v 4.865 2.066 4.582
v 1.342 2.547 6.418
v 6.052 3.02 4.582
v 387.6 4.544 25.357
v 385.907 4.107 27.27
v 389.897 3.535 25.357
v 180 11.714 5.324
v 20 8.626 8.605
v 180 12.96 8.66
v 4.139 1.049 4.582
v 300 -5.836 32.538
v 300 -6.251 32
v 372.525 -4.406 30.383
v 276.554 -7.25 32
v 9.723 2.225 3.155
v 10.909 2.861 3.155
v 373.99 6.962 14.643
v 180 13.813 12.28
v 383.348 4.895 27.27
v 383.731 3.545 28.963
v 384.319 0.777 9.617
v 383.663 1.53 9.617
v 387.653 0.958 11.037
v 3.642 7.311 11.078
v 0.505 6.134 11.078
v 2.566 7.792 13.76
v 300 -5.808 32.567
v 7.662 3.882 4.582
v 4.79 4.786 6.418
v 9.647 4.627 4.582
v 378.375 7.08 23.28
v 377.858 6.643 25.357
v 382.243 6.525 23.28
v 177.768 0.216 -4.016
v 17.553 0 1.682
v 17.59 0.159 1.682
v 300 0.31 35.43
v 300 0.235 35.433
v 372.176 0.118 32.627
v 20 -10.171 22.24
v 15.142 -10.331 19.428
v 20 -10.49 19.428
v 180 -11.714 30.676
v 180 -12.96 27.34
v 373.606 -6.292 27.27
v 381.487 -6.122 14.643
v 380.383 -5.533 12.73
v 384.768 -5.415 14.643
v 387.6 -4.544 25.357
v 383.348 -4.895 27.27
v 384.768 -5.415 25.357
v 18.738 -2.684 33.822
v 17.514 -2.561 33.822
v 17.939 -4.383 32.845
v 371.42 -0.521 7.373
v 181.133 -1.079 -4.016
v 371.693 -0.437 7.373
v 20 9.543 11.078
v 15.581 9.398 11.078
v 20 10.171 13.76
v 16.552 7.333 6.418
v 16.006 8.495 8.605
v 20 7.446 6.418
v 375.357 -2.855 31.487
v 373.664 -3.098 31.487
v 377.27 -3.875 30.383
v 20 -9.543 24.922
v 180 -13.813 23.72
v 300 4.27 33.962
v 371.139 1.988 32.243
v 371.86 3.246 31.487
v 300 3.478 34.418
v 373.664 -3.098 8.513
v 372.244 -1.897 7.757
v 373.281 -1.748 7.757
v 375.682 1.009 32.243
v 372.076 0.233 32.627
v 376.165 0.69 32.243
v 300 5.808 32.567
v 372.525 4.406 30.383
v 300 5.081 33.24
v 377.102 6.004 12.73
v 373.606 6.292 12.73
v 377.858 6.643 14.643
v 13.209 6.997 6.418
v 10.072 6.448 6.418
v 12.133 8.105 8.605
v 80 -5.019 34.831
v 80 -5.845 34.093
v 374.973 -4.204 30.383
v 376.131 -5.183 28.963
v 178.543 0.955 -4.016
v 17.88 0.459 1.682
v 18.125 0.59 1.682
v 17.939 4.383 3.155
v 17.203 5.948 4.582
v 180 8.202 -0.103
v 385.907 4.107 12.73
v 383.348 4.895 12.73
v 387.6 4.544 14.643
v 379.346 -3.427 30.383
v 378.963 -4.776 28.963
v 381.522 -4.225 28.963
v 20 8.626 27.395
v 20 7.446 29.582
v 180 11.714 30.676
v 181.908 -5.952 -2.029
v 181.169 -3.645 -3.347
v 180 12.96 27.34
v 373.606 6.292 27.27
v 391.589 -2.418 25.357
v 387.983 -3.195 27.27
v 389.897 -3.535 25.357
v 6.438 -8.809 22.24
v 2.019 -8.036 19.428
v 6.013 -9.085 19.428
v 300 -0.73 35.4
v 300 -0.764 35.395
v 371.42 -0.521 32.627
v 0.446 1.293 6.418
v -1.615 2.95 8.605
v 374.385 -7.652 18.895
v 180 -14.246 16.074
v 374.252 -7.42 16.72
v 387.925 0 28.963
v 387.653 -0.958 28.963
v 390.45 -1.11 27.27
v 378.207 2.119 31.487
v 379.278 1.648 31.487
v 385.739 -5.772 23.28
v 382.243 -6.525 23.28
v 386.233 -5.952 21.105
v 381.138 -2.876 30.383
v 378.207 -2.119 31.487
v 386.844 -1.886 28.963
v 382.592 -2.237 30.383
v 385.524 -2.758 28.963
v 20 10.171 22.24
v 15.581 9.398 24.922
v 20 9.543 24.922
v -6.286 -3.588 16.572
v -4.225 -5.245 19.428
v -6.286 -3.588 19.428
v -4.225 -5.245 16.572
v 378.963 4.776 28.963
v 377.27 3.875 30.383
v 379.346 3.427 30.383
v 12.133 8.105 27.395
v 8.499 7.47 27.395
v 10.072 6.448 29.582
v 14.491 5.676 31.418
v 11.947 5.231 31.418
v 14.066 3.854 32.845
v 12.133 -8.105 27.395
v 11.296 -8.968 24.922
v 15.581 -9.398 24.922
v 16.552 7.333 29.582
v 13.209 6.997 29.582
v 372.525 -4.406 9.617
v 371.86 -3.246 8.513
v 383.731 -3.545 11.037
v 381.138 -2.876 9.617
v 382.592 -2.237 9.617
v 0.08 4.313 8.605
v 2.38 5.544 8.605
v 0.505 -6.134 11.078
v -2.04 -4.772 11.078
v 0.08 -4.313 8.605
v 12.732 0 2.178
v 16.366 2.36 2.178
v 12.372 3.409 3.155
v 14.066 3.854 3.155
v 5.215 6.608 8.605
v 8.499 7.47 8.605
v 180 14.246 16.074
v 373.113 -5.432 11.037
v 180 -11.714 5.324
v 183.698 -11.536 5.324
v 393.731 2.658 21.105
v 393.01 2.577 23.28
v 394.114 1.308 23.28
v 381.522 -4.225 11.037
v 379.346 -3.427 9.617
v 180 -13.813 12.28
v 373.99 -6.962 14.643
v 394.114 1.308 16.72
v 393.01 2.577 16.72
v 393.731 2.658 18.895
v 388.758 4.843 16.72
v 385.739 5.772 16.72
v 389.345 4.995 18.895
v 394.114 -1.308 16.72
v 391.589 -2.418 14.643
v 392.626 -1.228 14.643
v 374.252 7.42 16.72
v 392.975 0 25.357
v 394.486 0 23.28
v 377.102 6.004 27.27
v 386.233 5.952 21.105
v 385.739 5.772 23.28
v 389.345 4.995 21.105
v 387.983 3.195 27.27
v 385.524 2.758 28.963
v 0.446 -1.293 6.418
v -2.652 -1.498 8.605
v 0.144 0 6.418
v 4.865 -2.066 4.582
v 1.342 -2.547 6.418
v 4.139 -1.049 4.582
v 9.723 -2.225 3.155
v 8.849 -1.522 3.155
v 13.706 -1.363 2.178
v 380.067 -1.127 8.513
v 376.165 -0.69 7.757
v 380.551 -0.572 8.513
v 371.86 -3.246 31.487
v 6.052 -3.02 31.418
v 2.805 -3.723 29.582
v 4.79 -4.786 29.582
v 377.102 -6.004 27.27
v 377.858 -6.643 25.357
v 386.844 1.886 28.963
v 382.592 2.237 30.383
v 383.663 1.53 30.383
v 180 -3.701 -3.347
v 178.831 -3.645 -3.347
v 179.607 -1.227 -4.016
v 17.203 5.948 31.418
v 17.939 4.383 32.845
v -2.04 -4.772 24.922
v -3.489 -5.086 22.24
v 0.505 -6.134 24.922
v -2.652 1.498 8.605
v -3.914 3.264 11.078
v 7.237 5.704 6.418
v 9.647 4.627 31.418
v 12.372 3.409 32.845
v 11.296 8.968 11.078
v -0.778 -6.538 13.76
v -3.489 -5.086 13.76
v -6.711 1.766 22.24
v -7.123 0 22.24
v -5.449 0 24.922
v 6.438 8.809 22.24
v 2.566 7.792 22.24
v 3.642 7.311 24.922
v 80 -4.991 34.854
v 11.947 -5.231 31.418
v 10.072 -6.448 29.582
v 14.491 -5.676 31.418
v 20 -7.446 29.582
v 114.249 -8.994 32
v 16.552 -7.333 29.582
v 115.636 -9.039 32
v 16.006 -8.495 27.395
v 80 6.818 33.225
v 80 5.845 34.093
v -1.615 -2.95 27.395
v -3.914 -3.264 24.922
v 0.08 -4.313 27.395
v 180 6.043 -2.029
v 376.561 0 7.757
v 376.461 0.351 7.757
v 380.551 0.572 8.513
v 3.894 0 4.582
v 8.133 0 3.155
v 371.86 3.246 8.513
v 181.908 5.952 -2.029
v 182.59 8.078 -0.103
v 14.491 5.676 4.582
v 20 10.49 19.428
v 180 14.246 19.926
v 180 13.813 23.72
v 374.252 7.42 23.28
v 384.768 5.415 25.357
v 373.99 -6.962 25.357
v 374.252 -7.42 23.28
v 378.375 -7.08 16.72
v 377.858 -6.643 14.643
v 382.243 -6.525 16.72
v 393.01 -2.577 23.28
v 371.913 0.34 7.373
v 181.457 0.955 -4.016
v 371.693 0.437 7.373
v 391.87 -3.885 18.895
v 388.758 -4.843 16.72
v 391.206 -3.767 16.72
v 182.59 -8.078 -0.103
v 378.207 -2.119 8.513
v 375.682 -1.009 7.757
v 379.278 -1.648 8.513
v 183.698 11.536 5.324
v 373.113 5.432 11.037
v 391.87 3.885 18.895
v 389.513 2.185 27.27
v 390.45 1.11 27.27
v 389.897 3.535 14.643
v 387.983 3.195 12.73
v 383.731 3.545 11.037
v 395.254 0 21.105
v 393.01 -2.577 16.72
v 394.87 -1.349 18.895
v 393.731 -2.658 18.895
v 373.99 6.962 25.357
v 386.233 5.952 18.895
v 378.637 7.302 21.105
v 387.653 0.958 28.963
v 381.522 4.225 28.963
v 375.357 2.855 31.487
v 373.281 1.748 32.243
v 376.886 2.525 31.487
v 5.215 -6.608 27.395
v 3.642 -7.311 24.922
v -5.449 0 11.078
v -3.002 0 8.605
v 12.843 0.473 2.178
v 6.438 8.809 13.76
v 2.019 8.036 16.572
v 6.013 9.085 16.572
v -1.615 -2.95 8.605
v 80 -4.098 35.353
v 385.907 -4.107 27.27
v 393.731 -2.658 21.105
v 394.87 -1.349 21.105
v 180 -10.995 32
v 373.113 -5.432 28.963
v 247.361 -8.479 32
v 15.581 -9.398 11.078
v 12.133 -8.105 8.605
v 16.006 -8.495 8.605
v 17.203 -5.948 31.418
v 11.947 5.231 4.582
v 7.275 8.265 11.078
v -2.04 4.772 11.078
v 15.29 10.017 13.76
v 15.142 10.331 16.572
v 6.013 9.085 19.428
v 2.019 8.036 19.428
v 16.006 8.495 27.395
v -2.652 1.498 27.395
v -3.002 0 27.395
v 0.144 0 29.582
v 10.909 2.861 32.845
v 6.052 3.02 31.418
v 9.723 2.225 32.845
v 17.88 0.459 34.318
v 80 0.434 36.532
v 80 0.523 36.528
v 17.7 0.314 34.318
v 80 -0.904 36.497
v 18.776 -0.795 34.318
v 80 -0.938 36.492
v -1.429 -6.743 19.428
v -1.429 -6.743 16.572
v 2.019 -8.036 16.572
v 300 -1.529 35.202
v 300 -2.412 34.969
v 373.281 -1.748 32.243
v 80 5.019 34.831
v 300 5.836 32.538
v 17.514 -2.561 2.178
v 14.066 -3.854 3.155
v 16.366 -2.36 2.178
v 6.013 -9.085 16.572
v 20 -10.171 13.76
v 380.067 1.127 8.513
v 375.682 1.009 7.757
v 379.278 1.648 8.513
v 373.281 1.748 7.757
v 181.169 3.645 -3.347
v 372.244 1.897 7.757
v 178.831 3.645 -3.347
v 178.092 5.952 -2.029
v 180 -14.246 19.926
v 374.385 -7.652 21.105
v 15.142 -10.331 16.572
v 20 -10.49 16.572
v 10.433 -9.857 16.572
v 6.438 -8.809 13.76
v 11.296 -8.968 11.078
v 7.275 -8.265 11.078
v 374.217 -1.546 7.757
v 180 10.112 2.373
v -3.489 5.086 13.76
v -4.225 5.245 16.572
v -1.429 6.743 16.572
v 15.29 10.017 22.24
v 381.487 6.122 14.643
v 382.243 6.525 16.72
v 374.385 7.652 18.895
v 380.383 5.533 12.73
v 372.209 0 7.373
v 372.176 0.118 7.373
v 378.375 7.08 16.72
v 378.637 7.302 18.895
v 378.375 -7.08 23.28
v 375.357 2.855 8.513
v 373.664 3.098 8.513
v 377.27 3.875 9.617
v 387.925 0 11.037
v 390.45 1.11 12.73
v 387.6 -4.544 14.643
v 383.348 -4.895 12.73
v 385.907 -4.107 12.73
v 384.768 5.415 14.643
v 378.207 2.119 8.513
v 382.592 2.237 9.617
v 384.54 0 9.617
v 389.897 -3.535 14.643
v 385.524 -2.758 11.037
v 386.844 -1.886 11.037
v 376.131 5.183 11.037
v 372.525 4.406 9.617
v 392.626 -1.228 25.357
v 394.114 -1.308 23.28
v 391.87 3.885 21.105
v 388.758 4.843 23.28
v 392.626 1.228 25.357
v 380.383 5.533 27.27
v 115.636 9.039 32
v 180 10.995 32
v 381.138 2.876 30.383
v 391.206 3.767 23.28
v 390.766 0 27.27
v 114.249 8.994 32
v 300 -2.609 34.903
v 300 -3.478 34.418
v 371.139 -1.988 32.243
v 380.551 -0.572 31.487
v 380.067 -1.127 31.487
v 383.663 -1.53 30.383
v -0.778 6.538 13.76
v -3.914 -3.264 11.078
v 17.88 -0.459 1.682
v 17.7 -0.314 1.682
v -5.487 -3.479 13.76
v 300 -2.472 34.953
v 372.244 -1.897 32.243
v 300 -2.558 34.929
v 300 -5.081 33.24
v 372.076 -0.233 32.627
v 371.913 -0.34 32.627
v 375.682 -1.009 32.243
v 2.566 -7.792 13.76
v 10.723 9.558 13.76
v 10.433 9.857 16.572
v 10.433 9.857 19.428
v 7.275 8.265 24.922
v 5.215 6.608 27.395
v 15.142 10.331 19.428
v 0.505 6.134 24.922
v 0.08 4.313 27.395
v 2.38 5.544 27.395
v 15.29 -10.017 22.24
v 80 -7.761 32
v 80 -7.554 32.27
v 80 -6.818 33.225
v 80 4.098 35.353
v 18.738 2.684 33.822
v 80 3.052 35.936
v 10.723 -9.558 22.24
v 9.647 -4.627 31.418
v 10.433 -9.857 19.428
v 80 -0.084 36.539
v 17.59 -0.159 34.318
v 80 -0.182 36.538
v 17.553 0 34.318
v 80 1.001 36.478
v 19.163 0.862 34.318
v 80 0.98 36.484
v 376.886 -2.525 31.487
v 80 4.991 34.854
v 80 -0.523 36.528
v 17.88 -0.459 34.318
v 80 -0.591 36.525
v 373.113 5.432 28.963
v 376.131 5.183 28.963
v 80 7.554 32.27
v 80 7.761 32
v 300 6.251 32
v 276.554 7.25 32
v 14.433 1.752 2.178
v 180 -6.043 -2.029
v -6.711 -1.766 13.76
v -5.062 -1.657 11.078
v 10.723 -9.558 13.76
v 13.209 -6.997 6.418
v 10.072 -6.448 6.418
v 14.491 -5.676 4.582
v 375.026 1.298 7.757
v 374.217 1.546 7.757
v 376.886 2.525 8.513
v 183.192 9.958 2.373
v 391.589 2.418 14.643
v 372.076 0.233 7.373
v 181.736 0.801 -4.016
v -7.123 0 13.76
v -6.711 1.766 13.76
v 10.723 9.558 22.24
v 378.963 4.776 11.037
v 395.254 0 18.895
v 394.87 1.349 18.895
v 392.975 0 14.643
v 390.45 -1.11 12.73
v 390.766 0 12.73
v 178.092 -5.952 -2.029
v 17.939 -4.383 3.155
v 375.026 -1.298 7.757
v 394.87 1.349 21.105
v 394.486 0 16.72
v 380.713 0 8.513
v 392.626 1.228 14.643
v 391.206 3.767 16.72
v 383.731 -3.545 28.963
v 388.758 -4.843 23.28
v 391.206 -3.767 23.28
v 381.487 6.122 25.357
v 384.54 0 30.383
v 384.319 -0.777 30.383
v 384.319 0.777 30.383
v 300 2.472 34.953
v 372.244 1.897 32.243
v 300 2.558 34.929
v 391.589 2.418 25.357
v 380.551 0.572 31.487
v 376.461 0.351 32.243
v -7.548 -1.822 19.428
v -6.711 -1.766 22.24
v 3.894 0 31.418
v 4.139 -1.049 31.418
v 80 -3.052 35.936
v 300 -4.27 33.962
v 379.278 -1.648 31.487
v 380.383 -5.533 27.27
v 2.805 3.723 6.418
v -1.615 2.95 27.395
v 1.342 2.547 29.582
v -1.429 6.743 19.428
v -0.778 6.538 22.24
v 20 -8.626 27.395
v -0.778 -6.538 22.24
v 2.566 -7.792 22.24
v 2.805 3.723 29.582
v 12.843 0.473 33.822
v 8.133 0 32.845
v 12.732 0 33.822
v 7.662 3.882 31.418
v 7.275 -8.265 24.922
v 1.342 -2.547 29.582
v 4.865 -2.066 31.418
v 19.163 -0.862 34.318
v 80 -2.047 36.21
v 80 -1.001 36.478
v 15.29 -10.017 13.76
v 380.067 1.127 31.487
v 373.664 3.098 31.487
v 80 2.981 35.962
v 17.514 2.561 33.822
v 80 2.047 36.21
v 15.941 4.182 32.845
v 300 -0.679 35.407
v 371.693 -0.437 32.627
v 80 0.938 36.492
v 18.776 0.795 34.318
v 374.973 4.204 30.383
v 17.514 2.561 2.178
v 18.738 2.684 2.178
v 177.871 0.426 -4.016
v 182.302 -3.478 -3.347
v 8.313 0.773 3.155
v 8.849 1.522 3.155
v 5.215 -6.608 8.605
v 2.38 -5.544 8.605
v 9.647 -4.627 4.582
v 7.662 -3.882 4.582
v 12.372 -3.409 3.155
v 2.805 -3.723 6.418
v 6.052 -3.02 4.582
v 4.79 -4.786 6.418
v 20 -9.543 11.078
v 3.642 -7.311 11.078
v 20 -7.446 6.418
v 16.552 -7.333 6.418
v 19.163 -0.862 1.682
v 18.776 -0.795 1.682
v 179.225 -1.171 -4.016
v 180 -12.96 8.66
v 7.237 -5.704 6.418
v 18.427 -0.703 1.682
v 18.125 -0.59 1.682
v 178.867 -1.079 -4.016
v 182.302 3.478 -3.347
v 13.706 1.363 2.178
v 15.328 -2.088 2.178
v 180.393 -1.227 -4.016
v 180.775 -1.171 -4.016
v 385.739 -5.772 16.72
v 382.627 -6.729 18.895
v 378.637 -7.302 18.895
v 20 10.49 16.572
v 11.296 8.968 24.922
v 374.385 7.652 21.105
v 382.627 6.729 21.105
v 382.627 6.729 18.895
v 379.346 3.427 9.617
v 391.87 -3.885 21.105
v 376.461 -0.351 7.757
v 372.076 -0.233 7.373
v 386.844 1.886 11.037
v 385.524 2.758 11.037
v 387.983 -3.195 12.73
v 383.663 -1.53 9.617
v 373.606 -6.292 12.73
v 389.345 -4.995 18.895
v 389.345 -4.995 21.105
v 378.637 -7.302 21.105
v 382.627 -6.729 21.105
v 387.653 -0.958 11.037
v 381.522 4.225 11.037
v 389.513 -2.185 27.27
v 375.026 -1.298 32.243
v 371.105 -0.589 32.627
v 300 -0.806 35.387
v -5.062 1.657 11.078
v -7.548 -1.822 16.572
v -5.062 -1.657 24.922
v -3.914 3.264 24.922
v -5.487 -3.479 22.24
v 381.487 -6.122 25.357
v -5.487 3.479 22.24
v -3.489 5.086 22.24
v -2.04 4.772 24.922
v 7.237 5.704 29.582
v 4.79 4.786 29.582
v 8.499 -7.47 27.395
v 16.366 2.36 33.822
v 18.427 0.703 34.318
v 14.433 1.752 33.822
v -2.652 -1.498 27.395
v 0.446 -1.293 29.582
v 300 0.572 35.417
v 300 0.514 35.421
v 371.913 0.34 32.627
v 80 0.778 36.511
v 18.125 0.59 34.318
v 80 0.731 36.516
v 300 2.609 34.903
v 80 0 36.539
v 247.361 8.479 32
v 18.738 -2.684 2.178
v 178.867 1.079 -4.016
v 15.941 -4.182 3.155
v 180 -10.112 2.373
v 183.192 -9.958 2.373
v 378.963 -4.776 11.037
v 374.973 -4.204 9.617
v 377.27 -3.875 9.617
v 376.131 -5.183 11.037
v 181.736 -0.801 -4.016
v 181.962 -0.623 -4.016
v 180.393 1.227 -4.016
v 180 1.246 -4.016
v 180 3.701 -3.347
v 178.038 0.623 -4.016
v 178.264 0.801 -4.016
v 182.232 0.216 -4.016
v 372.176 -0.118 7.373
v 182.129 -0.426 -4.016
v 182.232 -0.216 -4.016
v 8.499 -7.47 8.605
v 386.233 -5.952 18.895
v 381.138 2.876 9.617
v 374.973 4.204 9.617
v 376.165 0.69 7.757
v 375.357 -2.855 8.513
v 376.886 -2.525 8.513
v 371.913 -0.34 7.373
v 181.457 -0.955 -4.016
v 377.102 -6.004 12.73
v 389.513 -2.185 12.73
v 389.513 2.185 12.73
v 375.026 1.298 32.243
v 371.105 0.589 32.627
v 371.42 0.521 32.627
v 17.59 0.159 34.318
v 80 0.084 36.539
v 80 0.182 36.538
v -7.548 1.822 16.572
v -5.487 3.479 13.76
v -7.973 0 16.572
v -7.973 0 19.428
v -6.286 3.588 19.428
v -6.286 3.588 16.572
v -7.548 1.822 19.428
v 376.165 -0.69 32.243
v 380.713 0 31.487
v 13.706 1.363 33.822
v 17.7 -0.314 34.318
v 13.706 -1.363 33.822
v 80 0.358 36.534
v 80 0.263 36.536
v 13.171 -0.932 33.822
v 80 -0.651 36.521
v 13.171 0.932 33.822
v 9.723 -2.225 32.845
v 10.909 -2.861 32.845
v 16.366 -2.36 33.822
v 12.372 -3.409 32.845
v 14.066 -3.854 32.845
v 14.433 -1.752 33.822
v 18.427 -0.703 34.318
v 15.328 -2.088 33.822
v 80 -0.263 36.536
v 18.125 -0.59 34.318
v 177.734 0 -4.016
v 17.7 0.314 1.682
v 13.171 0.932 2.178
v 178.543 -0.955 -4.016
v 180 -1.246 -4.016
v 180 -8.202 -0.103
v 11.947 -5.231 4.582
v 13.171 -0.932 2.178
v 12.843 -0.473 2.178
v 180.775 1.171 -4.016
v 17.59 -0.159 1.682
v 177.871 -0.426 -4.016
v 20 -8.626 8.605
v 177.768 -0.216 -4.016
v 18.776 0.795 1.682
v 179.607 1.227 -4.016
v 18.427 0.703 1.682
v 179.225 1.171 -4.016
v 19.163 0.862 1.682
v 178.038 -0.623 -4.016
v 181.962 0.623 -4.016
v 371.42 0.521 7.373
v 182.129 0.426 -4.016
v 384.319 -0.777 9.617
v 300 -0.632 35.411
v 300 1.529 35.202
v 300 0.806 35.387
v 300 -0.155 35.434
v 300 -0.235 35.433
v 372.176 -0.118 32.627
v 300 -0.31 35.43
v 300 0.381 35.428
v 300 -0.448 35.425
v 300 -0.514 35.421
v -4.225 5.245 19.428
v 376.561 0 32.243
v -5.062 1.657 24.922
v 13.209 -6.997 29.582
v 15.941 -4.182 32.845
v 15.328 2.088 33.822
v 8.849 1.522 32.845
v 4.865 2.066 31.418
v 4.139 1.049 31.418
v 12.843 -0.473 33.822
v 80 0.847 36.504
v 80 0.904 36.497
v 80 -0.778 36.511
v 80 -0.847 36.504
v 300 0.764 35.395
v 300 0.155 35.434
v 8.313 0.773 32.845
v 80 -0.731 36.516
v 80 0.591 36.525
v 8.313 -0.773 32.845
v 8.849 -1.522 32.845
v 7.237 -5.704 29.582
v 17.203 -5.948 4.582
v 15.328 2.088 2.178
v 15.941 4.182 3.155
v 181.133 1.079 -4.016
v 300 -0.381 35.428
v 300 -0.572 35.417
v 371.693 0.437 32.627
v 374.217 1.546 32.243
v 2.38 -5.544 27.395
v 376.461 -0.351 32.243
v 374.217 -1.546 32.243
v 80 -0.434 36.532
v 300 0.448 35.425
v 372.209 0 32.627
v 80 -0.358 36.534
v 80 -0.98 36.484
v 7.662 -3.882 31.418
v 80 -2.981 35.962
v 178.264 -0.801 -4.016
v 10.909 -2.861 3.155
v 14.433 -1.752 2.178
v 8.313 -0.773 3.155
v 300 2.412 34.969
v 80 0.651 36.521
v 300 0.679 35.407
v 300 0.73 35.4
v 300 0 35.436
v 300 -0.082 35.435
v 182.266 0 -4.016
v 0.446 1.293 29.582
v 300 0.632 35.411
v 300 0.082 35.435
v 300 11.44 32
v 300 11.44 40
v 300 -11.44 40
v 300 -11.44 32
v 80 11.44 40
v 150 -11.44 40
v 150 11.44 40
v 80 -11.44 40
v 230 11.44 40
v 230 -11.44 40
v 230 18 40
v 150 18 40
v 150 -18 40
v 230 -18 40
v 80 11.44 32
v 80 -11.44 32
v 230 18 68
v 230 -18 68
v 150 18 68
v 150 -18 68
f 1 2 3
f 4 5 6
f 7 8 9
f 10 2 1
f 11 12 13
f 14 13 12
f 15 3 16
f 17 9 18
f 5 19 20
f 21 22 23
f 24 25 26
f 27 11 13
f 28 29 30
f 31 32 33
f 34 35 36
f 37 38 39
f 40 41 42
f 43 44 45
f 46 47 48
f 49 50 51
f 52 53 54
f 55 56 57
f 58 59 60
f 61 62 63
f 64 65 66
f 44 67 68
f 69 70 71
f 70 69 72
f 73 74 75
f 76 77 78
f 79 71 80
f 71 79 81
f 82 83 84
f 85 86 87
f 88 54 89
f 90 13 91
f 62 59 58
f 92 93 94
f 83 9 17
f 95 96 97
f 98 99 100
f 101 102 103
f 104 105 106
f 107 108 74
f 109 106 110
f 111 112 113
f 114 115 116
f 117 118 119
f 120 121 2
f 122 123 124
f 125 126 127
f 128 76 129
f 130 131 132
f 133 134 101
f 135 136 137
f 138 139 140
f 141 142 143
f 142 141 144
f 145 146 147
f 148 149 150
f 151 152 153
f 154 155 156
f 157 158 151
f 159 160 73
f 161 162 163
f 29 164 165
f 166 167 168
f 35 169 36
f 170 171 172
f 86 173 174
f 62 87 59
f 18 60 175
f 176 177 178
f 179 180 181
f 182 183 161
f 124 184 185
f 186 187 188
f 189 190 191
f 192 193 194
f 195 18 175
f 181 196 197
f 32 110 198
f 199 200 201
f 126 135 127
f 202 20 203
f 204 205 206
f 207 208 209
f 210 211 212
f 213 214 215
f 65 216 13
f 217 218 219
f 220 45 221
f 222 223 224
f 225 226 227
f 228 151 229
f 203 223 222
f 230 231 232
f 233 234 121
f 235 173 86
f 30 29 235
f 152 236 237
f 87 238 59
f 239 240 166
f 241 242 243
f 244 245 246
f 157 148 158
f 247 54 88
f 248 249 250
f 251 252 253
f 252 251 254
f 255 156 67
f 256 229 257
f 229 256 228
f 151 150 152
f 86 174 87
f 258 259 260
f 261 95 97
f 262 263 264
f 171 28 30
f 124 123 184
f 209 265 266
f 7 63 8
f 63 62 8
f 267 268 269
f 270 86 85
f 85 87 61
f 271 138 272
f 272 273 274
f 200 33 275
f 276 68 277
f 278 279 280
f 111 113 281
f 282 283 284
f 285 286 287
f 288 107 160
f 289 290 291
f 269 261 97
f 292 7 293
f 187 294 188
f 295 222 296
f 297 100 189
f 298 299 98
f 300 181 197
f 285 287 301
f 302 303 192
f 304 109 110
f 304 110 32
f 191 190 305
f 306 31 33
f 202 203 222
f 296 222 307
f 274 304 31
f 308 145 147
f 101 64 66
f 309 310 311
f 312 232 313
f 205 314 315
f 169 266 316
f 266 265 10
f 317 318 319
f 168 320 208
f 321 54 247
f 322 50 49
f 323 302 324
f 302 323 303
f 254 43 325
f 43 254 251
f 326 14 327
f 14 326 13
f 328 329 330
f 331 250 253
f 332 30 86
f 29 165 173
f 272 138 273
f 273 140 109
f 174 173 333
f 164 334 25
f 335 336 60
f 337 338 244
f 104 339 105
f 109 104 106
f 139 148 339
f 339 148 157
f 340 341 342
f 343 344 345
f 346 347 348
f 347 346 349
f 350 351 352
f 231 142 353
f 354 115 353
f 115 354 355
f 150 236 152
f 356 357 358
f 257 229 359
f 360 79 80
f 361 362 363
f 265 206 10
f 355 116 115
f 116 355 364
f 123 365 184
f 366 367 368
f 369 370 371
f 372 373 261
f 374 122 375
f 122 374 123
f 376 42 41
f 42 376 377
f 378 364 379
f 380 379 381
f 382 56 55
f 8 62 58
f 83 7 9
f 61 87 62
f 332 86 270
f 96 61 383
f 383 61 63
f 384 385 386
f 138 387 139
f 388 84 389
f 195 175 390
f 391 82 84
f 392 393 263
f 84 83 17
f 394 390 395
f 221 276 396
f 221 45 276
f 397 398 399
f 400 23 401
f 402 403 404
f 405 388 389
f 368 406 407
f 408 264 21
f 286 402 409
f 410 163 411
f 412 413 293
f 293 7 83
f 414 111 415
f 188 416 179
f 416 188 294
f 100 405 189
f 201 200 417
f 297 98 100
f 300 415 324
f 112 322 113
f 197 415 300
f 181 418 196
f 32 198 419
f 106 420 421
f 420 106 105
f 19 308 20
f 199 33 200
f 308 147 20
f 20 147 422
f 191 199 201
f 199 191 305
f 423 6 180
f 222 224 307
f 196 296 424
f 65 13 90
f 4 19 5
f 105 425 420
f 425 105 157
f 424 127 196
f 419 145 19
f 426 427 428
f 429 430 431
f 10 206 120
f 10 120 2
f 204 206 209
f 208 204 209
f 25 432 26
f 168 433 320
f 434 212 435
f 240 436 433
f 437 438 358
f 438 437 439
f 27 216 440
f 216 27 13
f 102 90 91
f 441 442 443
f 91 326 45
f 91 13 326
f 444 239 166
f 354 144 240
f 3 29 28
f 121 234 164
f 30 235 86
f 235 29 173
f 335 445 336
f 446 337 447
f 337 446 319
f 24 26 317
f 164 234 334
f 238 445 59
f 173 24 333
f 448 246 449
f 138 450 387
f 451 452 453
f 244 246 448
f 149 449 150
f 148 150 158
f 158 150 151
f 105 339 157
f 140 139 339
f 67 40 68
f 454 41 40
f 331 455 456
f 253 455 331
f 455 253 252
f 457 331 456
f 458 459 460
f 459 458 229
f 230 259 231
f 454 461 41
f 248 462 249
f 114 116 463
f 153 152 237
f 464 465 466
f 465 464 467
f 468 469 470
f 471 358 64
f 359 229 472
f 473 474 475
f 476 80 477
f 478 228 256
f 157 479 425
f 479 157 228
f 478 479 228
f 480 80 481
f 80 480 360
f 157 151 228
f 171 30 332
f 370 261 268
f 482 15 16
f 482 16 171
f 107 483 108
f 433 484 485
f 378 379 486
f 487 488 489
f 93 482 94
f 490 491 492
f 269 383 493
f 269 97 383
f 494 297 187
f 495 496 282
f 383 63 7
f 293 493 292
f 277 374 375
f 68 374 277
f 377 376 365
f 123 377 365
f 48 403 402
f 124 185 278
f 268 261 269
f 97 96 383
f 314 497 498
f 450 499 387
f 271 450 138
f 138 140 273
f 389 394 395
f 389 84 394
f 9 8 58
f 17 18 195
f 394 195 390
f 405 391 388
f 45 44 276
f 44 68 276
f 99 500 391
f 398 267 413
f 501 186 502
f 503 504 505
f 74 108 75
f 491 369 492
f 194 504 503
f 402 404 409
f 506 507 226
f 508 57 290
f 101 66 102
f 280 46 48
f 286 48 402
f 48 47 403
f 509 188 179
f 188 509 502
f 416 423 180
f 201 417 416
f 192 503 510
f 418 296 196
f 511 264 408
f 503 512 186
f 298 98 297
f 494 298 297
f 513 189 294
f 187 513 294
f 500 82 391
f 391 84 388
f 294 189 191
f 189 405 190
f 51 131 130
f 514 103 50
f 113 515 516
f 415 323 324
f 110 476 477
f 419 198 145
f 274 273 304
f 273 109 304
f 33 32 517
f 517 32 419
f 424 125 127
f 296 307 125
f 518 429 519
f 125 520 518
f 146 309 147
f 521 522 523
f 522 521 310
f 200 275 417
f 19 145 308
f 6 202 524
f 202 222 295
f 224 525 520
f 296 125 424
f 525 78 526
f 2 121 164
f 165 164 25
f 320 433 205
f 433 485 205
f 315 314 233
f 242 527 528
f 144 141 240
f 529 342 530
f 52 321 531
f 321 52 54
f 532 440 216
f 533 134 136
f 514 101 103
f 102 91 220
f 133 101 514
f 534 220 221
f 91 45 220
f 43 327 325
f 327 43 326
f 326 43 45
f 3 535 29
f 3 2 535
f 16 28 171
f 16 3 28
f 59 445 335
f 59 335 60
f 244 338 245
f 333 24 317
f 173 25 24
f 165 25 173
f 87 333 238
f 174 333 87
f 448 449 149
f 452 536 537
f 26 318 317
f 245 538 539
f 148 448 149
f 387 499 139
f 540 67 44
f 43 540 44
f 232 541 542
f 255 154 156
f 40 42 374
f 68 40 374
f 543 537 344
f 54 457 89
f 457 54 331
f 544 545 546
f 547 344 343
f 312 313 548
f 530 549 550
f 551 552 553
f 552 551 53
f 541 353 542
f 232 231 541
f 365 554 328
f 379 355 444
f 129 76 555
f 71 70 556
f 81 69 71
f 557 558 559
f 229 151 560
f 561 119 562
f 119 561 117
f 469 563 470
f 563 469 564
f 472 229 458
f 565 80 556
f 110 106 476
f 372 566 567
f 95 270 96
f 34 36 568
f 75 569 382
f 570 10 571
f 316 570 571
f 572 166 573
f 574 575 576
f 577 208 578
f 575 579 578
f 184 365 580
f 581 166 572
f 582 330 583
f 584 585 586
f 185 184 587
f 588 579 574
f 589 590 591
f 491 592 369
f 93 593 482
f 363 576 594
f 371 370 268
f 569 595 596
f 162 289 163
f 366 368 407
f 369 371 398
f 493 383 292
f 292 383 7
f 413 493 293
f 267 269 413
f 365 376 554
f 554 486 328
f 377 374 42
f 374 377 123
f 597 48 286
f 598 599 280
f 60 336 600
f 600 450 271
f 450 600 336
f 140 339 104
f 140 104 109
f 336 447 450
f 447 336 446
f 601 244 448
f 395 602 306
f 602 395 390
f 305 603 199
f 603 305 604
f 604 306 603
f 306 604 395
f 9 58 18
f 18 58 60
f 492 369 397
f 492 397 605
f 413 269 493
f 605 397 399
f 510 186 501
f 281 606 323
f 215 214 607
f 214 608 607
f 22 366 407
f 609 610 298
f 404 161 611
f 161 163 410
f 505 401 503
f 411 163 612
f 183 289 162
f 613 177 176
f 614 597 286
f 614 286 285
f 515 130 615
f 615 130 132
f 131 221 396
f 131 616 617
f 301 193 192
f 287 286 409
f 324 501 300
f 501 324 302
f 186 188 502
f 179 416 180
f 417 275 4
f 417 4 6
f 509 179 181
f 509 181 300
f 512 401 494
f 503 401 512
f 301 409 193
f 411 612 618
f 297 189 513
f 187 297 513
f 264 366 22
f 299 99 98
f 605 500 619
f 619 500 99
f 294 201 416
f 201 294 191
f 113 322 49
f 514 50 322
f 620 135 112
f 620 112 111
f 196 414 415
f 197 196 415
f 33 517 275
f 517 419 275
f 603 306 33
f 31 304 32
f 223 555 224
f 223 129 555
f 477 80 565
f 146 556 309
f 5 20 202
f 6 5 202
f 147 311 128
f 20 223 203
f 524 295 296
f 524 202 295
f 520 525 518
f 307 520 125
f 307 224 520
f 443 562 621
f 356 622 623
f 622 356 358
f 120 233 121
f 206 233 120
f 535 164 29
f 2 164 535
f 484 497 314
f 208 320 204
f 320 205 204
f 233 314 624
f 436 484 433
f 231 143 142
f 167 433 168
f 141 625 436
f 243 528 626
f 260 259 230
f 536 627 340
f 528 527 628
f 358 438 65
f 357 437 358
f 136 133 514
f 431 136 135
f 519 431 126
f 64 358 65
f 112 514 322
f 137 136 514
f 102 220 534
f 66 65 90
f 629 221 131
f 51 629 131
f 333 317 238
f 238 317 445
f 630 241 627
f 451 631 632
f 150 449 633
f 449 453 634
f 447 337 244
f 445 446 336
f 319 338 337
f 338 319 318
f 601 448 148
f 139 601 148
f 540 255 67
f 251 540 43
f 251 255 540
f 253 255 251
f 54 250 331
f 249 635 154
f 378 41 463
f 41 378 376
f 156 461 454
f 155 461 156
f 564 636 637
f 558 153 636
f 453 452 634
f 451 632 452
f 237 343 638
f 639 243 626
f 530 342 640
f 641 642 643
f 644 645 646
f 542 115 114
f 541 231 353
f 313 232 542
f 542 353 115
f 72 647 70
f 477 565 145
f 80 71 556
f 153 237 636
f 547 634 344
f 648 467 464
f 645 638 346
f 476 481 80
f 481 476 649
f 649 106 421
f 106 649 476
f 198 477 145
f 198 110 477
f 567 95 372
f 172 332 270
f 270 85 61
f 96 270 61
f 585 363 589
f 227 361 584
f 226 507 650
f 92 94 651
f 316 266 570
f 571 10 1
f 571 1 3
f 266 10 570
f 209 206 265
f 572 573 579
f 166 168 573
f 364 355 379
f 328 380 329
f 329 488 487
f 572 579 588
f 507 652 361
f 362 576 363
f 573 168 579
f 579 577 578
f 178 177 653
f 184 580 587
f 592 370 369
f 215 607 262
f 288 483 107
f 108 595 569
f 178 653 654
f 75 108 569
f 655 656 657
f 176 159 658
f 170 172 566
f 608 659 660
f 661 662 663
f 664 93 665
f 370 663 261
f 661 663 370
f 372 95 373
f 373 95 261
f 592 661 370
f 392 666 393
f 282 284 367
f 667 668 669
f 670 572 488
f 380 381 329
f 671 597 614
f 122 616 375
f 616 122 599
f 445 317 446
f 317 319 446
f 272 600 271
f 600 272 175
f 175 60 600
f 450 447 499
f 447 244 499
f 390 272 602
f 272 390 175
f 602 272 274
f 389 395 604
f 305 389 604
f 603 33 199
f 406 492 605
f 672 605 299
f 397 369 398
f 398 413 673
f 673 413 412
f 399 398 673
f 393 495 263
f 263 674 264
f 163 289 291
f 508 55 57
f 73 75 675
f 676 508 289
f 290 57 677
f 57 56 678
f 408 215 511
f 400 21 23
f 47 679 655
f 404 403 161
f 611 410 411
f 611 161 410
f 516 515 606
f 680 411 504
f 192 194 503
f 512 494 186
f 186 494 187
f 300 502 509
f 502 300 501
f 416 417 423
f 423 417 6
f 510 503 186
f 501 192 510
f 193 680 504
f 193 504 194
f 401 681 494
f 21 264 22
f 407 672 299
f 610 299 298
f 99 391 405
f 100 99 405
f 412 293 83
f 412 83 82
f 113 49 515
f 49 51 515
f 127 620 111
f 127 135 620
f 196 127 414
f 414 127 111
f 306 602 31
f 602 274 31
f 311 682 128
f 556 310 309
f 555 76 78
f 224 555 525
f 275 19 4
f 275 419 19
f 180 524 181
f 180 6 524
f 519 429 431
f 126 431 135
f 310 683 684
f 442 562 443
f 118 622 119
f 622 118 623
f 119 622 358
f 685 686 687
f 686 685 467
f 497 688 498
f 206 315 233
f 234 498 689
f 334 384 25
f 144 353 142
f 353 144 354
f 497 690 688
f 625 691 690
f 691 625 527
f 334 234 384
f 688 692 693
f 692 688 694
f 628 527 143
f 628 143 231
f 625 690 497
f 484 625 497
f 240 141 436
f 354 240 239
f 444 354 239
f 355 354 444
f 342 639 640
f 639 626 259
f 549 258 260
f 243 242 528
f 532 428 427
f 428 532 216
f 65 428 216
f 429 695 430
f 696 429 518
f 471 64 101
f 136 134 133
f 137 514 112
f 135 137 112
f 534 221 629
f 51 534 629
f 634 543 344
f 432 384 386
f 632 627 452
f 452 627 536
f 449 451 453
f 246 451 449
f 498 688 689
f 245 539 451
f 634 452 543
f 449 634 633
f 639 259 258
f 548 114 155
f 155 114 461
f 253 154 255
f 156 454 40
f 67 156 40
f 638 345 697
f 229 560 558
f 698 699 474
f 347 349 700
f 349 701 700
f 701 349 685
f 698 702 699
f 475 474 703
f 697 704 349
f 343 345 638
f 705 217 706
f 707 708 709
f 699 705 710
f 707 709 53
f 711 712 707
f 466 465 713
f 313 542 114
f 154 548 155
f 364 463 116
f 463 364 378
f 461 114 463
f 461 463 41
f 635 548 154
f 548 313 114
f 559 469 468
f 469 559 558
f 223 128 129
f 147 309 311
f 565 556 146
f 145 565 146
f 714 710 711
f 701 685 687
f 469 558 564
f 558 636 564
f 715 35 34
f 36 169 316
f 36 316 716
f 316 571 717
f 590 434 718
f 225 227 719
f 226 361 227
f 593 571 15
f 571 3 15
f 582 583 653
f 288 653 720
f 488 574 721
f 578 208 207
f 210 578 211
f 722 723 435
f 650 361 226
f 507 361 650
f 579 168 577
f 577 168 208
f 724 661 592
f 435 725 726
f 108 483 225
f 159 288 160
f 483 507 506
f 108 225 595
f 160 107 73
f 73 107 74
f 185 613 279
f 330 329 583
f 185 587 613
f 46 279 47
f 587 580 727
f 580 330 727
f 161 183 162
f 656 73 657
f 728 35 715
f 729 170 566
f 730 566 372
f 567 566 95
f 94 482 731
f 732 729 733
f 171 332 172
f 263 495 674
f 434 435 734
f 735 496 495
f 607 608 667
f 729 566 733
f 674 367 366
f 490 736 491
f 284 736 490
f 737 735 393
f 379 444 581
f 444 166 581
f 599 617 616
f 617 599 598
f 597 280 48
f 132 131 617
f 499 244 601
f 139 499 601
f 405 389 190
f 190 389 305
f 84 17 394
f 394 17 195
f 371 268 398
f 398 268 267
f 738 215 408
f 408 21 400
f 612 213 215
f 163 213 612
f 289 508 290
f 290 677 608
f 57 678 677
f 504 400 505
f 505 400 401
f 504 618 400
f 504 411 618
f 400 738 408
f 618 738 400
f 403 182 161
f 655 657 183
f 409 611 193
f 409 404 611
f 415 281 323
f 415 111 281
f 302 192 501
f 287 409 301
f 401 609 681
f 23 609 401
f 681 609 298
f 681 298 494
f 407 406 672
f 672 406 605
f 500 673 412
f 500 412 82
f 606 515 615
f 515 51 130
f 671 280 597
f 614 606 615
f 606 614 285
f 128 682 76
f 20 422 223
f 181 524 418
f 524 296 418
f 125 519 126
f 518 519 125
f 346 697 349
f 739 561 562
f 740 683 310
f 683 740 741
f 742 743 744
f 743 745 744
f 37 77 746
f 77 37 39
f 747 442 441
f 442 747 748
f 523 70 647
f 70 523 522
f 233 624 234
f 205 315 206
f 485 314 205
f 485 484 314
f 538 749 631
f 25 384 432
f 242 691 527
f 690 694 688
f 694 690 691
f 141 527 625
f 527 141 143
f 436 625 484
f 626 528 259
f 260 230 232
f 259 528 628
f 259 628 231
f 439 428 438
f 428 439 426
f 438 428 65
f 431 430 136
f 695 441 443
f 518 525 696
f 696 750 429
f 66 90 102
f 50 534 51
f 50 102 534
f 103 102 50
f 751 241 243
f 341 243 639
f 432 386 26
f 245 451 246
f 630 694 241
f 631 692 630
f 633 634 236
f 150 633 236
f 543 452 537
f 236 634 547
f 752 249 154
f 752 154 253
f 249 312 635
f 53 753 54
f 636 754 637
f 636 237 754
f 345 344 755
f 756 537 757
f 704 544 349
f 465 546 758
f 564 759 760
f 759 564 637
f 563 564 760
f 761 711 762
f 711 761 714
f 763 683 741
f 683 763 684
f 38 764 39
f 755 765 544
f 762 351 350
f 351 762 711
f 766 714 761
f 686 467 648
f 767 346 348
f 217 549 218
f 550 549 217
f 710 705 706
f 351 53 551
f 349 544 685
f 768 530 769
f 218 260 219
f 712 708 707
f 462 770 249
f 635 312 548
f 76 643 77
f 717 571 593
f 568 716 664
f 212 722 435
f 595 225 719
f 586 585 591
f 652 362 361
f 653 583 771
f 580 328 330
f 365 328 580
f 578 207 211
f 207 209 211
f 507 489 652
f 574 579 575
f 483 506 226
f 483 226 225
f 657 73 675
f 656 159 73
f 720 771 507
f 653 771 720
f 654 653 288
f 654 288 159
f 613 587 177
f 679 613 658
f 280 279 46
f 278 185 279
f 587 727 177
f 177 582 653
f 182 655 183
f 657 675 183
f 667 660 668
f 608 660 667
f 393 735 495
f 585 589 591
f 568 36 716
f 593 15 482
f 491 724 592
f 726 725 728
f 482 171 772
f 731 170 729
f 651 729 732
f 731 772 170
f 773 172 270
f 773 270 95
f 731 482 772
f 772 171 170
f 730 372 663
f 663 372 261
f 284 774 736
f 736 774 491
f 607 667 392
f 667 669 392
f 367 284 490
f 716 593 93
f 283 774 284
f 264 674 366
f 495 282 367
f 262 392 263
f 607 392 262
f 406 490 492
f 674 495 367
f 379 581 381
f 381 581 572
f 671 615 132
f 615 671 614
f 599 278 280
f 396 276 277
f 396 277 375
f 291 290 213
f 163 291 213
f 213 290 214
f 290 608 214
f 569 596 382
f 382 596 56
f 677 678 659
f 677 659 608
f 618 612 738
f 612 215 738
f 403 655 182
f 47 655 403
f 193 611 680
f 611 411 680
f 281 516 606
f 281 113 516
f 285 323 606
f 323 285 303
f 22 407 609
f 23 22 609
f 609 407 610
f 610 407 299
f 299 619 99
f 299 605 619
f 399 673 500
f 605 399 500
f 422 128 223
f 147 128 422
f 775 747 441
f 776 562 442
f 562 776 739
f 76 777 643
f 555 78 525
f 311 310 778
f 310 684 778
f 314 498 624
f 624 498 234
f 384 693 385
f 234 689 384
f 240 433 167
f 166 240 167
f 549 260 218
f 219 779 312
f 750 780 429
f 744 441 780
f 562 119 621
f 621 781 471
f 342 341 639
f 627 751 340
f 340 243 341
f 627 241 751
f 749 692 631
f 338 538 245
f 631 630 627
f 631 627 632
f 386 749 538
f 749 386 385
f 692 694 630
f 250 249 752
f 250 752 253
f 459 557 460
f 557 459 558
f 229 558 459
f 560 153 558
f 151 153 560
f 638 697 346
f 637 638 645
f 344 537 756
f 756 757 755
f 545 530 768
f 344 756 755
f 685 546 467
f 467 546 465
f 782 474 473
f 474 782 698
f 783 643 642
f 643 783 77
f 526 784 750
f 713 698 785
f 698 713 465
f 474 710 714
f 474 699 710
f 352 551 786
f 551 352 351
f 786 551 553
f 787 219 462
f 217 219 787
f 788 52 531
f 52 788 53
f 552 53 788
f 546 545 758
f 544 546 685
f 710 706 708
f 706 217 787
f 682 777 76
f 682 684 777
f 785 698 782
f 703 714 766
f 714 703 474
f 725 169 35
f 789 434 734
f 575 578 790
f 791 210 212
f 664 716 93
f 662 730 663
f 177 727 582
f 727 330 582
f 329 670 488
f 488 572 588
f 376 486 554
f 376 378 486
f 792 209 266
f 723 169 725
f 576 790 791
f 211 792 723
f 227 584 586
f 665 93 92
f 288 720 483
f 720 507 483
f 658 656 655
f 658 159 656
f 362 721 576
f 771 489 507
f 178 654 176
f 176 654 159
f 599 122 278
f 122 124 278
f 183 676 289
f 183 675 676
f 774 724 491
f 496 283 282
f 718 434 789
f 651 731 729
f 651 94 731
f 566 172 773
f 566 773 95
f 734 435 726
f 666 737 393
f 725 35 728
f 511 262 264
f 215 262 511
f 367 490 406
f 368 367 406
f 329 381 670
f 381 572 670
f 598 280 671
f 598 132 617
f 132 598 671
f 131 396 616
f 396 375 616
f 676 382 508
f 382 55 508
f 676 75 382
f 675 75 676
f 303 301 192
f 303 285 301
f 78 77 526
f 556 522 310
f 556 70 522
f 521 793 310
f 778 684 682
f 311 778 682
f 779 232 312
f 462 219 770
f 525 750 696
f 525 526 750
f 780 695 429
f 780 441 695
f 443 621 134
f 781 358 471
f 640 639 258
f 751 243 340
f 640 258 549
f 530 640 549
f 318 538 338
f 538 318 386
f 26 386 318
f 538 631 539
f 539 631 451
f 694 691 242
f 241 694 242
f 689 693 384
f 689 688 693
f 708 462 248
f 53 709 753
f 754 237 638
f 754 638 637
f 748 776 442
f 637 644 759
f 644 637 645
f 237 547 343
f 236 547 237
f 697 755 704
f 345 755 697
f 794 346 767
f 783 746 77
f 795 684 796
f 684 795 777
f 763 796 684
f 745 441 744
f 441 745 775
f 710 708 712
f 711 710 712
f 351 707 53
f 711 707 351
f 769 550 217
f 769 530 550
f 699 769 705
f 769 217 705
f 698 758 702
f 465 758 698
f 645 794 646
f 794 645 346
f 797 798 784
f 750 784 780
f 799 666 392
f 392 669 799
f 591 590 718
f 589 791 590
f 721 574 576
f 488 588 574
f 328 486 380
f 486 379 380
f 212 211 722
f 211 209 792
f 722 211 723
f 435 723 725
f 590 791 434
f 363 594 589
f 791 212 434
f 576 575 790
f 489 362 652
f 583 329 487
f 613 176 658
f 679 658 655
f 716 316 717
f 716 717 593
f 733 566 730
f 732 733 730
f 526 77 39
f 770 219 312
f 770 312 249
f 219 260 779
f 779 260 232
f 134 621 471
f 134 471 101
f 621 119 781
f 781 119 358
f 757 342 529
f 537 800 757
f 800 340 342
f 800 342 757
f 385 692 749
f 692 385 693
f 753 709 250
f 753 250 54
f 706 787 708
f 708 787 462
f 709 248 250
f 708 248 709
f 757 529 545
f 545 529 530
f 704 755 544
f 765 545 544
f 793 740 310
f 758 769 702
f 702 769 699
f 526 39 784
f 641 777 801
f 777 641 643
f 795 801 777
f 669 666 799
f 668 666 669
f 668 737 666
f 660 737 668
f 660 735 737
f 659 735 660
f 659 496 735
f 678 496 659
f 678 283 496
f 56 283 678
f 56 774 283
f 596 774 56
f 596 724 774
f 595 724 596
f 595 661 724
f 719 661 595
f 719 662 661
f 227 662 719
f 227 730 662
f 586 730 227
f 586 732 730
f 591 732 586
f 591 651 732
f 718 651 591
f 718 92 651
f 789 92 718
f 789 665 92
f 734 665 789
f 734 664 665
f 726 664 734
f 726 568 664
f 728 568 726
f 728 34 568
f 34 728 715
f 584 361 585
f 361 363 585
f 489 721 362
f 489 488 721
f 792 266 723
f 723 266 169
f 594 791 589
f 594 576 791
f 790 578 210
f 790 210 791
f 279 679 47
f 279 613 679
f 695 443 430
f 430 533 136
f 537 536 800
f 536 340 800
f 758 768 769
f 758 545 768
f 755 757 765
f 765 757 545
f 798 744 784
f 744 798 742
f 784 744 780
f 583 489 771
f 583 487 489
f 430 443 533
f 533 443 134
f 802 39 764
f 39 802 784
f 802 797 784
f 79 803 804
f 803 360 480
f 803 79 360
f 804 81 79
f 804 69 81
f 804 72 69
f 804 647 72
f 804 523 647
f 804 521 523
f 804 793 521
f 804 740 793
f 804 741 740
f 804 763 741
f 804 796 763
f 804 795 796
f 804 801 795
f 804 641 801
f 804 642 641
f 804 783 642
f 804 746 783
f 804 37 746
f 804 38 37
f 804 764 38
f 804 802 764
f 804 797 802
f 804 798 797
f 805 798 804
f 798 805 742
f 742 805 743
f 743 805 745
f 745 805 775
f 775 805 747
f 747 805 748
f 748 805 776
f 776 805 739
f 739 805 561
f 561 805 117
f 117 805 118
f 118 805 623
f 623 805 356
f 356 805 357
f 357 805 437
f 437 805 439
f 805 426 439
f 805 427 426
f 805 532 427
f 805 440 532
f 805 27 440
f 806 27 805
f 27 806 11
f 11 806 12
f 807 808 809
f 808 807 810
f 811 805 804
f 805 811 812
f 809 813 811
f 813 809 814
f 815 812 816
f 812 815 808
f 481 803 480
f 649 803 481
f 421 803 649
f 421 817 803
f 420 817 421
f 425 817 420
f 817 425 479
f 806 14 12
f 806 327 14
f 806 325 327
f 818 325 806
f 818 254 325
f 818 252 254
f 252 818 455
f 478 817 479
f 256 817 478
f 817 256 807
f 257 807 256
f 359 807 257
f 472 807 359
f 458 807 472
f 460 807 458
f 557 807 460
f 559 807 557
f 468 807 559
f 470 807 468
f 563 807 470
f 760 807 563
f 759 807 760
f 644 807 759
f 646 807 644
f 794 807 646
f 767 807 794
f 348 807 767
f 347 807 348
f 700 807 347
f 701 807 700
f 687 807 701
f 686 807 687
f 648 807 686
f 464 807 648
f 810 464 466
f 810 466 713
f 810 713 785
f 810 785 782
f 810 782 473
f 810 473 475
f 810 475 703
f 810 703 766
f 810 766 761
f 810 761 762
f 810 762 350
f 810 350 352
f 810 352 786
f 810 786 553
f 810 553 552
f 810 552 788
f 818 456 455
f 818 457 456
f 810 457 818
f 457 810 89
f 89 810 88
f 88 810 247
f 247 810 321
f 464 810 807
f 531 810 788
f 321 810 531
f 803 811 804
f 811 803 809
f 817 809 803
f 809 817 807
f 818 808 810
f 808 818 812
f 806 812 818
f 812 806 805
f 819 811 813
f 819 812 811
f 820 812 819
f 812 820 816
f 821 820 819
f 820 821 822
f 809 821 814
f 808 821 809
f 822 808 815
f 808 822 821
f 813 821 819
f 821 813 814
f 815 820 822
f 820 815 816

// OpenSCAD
// ISM-WS-1 warship hull study — B2 #43
// Units: mm study model. Public-domain proportion sketch only.
// No weapons geometry — combat items are YAML mass/footprint boxes only.

hull_length = 400;
hull_beam   = 52;
hull_depth  = 36;
draft       = 18;

module hull_body() {
    hull() {
        // Bow
        translate([20, 0, draft])
            scale([1.2, 0.45, 0.7])
                sphere(d = hull_beam * 0.9, $fn = 36);
        // Midbody
        translate([hull_length * 0.45, 0, draft])
            scale([1.0, 0.55, 0.85])
                sphere(d = hull_beam, $fn = 36);
        // Stern
        translate([hull_length - 30, 0, draft + 2])
            scale([1.3, 0.4, 0.65])
                sphere(d = hull_beam * 0.75, $fn = 36);
    }
}

module deck_box() {
    translate([80, -hull_beam * 0.22, hull_depth - 4])
        cube([hull_length * 0.55, hull_beam * 0.44, 8]);
}

module superstructure_stub() {
    translate([150, -18, hull_depth + 4])
        cube([80, 36, 28]);
}

echo("B2 #43: warship hull study — hydro/arrangements only; no weapons solids");
hull_body();
deck_box();
superstructure_stub();
